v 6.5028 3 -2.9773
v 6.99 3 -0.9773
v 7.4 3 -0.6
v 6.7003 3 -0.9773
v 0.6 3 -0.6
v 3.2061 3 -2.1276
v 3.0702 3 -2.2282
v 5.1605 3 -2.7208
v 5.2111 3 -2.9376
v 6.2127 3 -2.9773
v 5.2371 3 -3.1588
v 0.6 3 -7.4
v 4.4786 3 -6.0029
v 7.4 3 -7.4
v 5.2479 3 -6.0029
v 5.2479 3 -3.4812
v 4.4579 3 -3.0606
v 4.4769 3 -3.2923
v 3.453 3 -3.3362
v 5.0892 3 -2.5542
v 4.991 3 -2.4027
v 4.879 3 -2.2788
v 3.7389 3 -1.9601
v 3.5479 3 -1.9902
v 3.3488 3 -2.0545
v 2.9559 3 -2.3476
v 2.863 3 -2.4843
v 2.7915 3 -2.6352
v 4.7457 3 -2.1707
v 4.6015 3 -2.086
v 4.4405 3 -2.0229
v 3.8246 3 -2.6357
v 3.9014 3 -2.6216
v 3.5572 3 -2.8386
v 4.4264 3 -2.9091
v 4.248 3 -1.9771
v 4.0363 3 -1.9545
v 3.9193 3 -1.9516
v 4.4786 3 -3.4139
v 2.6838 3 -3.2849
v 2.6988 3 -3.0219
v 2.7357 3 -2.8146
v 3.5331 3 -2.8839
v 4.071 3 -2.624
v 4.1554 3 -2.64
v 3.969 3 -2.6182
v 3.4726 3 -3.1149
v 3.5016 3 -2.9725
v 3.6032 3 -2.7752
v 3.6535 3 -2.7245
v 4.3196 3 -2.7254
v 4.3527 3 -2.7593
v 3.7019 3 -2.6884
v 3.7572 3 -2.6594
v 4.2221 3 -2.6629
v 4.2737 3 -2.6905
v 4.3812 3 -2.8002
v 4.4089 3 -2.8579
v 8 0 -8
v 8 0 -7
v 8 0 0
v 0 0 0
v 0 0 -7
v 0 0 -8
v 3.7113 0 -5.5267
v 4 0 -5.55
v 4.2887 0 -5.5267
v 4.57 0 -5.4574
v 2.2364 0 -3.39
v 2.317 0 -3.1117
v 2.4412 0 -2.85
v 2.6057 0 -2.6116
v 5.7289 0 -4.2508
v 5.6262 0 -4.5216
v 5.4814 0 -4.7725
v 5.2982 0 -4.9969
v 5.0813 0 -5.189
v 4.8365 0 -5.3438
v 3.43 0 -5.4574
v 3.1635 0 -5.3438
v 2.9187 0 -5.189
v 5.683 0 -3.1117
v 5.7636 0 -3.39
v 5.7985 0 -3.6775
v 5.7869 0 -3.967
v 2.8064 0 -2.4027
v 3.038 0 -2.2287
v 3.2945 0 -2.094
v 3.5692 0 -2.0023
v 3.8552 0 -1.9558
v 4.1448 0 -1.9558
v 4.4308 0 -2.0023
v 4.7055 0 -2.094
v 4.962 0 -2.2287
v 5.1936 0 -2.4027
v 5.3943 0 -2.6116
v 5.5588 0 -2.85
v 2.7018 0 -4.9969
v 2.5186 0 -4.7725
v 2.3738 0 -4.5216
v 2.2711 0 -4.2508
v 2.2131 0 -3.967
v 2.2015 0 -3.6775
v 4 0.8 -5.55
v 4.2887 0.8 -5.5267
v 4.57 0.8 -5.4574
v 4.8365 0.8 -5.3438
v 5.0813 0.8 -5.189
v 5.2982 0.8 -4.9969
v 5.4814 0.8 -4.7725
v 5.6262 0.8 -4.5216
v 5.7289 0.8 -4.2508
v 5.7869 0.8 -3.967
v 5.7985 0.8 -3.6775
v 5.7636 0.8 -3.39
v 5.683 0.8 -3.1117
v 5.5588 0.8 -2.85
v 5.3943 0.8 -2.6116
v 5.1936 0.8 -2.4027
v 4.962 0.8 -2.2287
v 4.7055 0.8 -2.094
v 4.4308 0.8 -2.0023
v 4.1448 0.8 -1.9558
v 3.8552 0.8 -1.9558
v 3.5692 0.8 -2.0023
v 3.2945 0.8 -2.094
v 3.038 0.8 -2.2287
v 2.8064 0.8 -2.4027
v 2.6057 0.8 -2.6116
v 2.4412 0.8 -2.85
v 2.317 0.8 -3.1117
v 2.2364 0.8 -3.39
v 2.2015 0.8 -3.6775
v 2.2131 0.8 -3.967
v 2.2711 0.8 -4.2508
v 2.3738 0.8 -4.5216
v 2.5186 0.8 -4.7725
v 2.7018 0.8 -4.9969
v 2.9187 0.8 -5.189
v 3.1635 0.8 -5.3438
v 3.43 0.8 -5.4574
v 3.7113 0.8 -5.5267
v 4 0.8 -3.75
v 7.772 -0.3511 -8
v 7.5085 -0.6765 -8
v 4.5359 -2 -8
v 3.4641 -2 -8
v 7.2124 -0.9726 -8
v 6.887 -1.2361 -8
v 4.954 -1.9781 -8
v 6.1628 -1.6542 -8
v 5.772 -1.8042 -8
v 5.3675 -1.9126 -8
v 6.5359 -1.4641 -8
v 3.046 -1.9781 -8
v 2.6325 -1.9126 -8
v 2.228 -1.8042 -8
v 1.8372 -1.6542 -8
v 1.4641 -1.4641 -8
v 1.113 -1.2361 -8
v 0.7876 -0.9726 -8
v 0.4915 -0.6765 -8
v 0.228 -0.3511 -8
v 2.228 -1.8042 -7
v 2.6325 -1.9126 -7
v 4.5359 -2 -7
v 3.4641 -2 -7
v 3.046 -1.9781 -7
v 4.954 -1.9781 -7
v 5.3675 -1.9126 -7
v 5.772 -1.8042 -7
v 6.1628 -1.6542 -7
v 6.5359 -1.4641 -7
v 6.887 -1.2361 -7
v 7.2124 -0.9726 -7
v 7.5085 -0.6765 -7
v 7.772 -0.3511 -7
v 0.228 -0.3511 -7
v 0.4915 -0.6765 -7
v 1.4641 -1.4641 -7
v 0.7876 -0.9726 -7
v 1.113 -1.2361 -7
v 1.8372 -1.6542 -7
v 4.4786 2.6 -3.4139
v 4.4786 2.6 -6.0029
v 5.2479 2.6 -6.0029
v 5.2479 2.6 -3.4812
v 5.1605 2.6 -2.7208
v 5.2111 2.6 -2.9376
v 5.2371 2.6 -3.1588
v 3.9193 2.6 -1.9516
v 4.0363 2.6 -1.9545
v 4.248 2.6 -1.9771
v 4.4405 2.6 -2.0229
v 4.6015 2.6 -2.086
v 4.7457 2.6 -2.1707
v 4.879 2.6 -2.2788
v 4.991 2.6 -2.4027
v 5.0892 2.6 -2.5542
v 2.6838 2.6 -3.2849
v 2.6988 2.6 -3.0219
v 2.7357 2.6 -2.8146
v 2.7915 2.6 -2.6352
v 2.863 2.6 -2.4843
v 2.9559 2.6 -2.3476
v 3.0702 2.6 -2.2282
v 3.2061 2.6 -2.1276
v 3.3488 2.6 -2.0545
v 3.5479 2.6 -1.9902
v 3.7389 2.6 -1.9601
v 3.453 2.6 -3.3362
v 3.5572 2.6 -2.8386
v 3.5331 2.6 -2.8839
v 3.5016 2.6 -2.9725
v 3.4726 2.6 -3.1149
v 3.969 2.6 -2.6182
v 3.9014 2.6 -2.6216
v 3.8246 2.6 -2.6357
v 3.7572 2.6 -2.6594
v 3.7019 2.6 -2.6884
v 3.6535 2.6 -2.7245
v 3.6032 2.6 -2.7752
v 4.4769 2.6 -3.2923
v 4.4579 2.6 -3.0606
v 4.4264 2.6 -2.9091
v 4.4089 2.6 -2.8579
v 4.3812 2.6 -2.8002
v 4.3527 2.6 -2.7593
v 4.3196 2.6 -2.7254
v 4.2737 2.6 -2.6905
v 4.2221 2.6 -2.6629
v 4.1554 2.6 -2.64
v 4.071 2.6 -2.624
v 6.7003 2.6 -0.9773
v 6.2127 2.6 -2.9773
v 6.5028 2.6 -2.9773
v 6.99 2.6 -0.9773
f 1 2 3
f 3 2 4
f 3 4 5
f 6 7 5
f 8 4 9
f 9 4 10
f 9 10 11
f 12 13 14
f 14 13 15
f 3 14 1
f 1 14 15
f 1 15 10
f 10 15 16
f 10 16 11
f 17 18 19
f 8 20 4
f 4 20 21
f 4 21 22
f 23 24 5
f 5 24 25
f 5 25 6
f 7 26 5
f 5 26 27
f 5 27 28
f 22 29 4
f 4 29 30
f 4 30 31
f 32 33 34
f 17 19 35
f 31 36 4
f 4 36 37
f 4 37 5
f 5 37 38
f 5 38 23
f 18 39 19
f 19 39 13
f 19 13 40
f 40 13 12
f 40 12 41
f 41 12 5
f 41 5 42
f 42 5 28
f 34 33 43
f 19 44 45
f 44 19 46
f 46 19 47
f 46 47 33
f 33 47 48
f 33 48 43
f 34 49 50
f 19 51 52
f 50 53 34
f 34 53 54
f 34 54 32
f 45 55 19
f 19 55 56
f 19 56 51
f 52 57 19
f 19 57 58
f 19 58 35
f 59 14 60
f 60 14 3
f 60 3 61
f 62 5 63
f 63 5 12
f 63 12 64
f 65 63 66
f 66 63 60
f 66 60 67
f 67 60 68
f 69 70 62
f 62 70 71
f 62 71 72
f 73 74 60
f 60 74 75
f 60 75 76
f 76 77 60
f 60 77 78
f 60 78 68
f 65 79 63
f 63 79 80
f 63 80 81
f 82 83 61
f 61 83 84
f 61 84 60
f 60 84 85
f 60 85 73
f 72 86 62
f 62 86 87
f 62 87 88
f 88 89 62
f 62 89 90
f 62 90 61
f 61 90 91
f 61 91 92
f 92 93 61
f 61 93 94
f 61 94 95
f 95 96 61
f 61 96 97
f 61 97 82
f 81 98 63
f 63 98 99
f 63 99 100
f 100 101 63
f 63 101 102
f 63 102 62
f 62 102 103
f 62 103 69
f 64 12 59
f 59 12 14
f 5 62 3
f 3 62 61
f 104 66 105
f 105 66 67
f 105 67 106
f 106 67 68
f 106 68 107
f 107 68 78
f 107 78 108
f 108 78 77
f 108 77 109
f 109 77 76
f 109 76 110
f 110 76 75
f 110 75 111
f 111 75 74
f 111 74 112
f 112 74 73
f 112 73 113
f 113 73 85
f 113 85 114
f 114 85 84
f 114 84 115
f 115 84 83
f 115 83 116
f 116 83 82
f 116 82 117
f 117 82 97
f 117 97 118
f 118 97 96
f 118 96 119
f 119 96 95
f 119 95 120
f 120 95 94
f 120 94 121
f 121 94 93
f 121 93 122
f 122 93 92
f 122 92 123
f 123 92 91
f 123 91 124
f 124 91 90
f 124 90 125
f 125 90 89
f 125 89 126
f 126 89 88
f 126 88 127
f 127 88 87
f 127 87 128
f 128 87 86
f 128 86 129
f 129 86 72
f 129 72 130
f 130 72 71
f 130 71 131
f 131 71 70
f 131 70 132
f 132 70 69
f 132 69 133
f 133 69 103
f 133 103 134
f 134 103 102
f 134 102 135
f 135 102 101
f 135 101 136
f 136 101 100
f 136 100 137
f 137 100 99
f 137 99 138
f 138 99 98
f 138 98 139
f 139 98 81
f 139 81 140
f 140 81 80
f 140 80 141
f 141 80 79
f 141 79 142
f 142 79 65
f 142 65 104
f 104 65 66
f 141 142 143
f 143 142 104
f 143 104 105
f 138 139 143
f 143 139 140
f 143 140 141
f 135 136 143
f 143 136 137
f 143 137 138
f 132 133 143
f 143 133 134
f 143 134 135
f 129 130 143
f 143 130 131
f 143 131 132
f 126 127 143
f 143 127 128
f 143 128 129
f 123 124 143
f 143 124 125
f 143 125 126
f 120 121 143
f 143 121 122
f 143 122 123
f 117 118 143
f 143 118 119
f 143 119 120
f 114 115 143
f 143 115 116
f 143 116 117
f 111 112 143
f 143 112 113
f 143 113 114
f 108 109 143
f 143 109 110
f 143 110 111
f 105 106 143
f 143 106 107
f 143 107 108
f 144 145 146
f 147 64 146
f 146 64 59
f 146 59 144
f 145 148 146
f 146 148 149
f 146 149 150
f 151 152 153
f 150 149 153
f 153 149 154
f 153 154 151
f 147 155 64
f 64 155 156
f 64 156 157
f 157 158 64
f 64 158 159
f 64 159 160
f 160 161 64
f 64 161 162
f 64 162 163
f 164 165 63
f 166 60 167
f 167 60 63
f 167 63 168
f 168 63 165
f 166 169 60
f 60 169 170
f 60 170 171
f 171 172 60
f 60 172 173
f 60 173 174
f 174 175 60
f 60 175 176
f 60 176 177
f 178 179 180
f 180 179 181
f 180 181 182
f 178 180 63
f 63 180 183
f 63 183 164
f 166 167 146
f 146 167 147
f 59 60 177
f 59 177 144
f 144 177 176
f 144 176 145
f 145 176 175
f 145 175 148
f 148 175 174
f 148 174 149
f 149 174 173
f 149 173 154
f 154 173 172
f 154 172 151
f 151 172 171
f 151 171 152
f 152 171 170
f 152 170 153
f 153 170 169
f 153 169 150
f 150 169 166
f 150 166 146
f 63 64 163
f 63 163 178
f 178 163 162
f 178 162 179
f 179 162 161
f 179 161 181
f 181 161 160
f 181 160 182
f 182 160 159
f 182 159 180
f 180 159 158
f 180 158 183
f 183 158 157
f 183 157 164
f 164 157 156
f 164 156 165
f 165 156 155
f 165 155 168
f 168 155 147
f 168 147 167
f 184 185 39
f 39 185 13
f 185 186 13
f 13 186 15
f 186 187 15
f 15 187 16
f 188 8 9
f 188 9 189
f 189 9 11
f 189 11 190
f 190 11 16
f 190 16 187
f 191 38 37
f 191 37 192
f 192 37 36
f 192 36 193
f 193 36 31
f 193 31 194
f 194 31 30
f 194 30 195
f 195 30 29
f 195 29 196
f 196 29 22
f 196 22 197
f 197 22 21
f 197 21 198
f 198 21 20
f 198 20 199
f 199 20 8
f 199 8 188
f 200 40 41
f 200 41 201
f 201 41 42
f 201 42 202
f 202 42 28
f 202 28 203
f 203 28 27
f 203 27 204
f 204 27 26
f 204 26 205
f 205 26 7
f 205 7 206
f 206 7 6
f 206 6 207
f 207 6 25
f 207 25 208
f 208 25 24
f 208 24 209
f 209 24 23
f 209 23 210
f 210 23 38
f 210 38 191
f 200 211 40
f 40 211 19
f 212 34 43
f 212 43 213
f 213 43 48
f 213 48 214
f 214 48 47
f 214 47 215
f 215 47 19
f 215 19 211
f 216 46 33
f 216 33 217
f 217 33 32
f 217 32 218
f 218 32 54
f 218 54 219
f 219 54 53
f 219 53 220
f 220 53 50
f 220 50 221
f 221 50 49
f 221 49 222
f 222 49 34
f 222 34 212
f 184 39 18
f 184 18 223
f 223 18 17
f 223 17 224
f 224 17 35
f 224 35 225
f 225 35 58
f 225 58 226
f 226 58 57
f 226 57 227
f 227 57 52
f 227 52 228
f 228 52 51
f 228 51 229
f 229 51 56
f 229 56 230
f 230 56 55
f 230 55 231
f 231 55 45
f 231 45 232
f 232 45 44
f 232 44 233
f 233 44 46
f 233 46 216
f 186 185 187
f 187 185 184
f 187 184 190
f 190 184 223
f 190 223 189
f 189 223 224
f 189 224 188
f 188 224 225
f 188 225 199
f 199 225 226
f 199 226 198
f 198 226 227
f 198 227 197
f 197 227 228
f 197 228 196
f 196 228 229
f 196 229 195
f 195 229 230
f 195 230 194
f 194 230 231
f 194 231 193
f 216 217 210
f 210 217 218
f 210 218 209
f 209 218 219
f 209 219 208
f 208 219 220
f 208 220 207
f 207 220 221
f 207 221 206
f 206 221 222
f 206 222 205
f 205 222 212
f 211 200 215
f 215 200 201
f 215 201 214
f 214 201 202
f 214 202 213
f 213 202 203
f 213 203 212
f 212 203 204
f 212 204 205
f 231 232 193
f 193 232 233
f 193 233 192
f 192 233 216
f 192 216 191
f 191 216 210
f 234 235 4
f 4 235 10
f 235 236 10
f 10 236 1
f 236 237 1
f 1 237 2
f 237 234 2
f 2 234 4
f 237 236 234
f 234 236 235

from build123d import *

# Parameters (mm, degrees)
SKETCH1_W               = 8
SKETCH1_H               = 8
BOSS_EXTRUDE1_DEPTH     = 3
CUT_EXTRUDE1_DEPTH      = 12.704699911
CUT_EXTRUDE1_DEPTH_BACK = 12.704699911
CUT_EXTRUDE2_DEPTH      = 11
SKETCH4_R               = 1.8
CUT_EXTRUDE3_DEPTH      = 0.8
SKETCH5_W               = 8
SKETCH5_H               = 1
BOSS_EXTRUDE2_DEPTH     = 2
FILLET1_R               = 4
CUT_EXTRUDE4_DEPTH      = 0.4
CUT_EXTRUDE5_DEPTH      = 0.4


with BuildPart() as part:
    # Sketch1 → Boss-Extrude1 (new body)
    with BuildSketch(Plane(origin=(0, 0, 0), x_dir=(1, 0, 0), z_dir=(0, 1, 0))):
        with Locations((4, 4)):
            Rectangle(SKETCH1_W, SKETCH1_H)
    extrude(amount=BOSS_EXTRUDE1_DEPTH)

    # Sketch2 → Cut-Extrude1 (cut, two sides: drawn at the far end of the back side and taken through both)
    with BuildSketch(Plane.XY.offset(-CUT_EXTRUDE1_DEPTH_BACK)):
        Polygon((0, 0), (0.6, 3), (0, 3), align=None)
        Polygon((8, 0), (7.4, 3), (8, 3), align=None)
    extrude(amount=CUT_EXTRUDE1_DEPTH + CUT_EXTRUDE1_DEPTH_BACK, mode=Mode.SUBTRACT)

    # Sketch3 → Cut-Extrude2 (cut)
    with BuildSketch(Plane(origin=(0, 0, 0), x_dir=(0, 0, -1), z_dir=(1, 0, 0))):
        Polygon((0, 0), (0.6, 3), (0, 3), align=None)
        Polygon((8, 3), (7.4, 3), (8, 0), align=None)
    extrude(amount=CUT_EXTRUDE2_DEPTH, mode=Mode.SUBTRACT)

    # Sketch4 → Cut-Extrude3 (cut)
    with BuildSketch(Plane.XZ):
        with Locations(Location((4, -3.75, 0), (0, 0, 270))):
            Circle(SKETCH4_R)
    extrude(amount=-CUT_EXTRUDE3_DEPTH, mode=Mode.SUBTRACT)

    # Sketch5 → Boss-Extrude2 (add)
    with BuildSketch(Plane.XZ):
        with Locations((4, -7.5)):
            Rectangle(SKETCH5_W, SKETCH5_H)
    extrude(amount=BOSS_EXTRUDE2_DEPTH)

    # Fillet1
    # the kernel refuses this fillet: 4 mm, written as the material it takes off along each edge
    with BuildSketch(Plane(origin=(8, -2, -16.660254038), x_dir=(0, 1, 0), z_dir=(0, 0, 1)), Plane(origin=(0, -2, 1.660254038), x_dir=(0, 1, 0), z_dir=(0, 0, -1))) as fillet1_piece_1:
        with BuildLine():
            CenterArc((4, 3.464101615), FILLET1_R, 180, 60)
            Line((0, 3.464101615), (-0.08, 3.464101615))
            Line((-0.08, 3.464101615), (-0.08, 0))
            Line((-0.08, 0), (0, -0.08))
            ThreePointArc((0, -0.08), (1, -0.08), (1.96, -0.069282032))
            Line((1.96, -0.069282032), (2, 0))
        make_face()
    extrude(amount=18.320508076, mode=Mode.SUBTRACT)

    # Sketch6 → Cut-Extrude4 (cut)
    with BuildSketch(Plane(origin=(0, 3, 0), x_dir=(1, 0, 0), z_dir=(0, 1, 0))):
        with BuildLine():
            Line((4.478635236, 6.002856352), (5.247866005, 6.002856352))
            Line((5.247866005, 6.002856352), (5.247866005, 3.481221736))
            add(Edge.make_bspline(
                [(5.247866005, 3.481221736), (5.247522255, 3.441153869), (5.246855206, 3.363401883), (5.242756502, 3.250390465), (5.236658321, 3.14454193), (5.227277222, 3.045871471), (5.21405872, 2.954592388), (5.200049867, 2.869976575), (5.183041427, 2.792451692), (5.167800036, 2.743951306), (5.160526262, 2.72080507)],
                knots=[0, 0, 0, 0, 1.251619961, 2.428777588, 3.532126049, 4.56323557, 5.523704531, 6.412540087, 7.242403515, 8, 8, 8, 8], degree=3))
            add(Edge.make_bspline(
                [(5.160526262, 2.72080507), (5.150361081, 2.692282601), (5.130243602, 2.635834988), (5.091141653, 2.555314881), (5.046176431, 2.479084315), (4.995474484, 2.406812938), (4.939514717, 2.338210987), (4.876399077, 2.275086649), (4.8083478, 2.215238098), (4.733446681, 2.161145289), (4.653580791, 2.110709794), (4.566475051, 2.068688963), (4.473843299, 2.032340387), (4.374908104, 2.002816628), (4.269640778, 1.979716073), (4.158311001, 1.962901894), (4.040770466, 1.95334773), (3.960490164, 1.952175274), (3.919340364, 1.9515743)],
                knots=[0, 0, 0, 0, 0.925533072, 1.831683394, 2.73255258, 3.630007683, 4.529542467, 5.436465751, 6.357118906, 7.298274949, 8.259461937, 9.242242071, 10.251058183, 11.300341426, 12.396409345, 13.544807631, 14.74152597, 16, 16, 16, 16], degree=3))
            add(Edge.make_bspline(
                [(3.919340364, 1.9515743), (3.871225528, 1.952737211), (3.777685944, 1.954998015), (3.641661475, 1.97000769), (3.514100564, 1.996260242), (3.395387048, 2.034179675), (3.284307874, 2.08131717), (3.182206561, 2.140114726), (3.088540477, 2.209392701), (3.003918711, 2.289363431), (2.928299433, 2.379218215), (2.863026475, 2.479745415), (2.80762712, 2.589893743), (2.762984692, 2.710161506), (2.727739397, 2.839972913), (2.702317462, 2.979601288), (2.687147894, 3.129126134), (2.684913172, 3.2319872), (2.683763441, 3.284907634)],
                knots=[0, 0, 0, 0, 1.114068574, 2.165849827, 3.164101702, 4.124467949, 5.046988974, 5.952942428, 6.846011651, 7.738523925, 8.642829306, 9.558838605, 10.50752403, 11.491963144, 12.524197802, 13.618364352, 14.774685164, 16, 16, 16, 16], degree=3))
            Line((2.683763441, 3.284907634), (3.45299421, 3.336189685))
            add(Edge.make_bspline(
                [(3.45299421, 3.336189685), (3.454375767, 3.307862598), (3.45702498, 3.25354382), (3.464380935, 3.175240866), (3.473682687, 3.103271277), (3.485853837, 3.037851064), (3.498960823, 2.978427444), (3.515987002, 2.926169857), (3.533886556, 2.879240769), (3.549608387, 2.851783511), (3.557160877, 2.838593531)],
                knots=[0, 0, 0, 0, 1.326609226, 2.543847584, 3.678365909, 4.719972403, 5.656527627, 6.521948534, 7.28997025, 8, 8, 8, 8], degree=3))
            add(Edge.make_bspline(
                [(3.557160877, 2.838593531), (3.56872297, 2.821148121), (3.59147861, 2.786813382), (3.632990929, 2.742071605), (3.677558537, 2.702955843), (3.727619554, 2.672203009), (3.781780527, 2.648016829), (3.840448037, 2.63044225), (3.903460331, 2.619785853), (3.946808463, 2.61876437), (3.969019851, 2.618240967)],
                knots=[0, 0, 0, 0, 1.023658308, 2.014687051, 2.979722519, 3.920049697, 4.880550909, 5.878122304, 6.912759386, 8, 8, 8, 8], degree=3))
            add(Edge.make_bspline(
                [(3.969019851, 2.618240967), (3.991477248, 2.618659453), (4.034647527, 2.619463917), (4.09686091, 2.626779219), (4.154063033, 2.638632824), (4.206285054, 2.655294856), (4.253703868, 2.676924623), (4.295268393, 2.704596166), (4.33276969, 2.735732915), (4.36516489, 2.773188264), (4.392766236, 2.818318957), (4.415812105, 2.873248962), (4.43563784, 2.938204221), (4.450960178, 3.01367855), (4.464002509, 3.098949399), (4.472183692, 3.194770716), (4.478064386, 3.300859295), (4.478439634, 3.37517575), (4.478635236, 3.413914044)],
                knots=[0, 0, 0, 0, 0.980314827, 1.884477813, 2.730827652, 3.527503874, 4.27366112, 4.998269146, 5.70163477, 6.396145331, 7.150281155, 8.001758491, 8.990432449, 10.111292654, 11.361572691, 12.75538406, 14.308707205, 16, 16, 16, 16], degree=3))
            Line((4.478635236, 3.413914044), (4.478635236, 6.002856352))
        make_face()
    extrude(amount=-CUT_EXTRUDE4_DEPTH, mode=Mode.SUBTRACT)

    # Sketch7 → Cut-Extrude5 (cut)
    with BuildSketch(Plane(origin=(0, 3, 0), x_dir=(1, 0, 0), z_dir=(0, 1, 0))):
        Polygon((6.21271865, 2.977310221), (6.502782752, 2.977310221), (6.989962239, 0.977310221), (6.700298778, 0.977310221), align=None)
    extrude(amount=-CUT_EXTRUDE5_DEPTH, mode=Mode.SUBTRACT)


solid = part.part
